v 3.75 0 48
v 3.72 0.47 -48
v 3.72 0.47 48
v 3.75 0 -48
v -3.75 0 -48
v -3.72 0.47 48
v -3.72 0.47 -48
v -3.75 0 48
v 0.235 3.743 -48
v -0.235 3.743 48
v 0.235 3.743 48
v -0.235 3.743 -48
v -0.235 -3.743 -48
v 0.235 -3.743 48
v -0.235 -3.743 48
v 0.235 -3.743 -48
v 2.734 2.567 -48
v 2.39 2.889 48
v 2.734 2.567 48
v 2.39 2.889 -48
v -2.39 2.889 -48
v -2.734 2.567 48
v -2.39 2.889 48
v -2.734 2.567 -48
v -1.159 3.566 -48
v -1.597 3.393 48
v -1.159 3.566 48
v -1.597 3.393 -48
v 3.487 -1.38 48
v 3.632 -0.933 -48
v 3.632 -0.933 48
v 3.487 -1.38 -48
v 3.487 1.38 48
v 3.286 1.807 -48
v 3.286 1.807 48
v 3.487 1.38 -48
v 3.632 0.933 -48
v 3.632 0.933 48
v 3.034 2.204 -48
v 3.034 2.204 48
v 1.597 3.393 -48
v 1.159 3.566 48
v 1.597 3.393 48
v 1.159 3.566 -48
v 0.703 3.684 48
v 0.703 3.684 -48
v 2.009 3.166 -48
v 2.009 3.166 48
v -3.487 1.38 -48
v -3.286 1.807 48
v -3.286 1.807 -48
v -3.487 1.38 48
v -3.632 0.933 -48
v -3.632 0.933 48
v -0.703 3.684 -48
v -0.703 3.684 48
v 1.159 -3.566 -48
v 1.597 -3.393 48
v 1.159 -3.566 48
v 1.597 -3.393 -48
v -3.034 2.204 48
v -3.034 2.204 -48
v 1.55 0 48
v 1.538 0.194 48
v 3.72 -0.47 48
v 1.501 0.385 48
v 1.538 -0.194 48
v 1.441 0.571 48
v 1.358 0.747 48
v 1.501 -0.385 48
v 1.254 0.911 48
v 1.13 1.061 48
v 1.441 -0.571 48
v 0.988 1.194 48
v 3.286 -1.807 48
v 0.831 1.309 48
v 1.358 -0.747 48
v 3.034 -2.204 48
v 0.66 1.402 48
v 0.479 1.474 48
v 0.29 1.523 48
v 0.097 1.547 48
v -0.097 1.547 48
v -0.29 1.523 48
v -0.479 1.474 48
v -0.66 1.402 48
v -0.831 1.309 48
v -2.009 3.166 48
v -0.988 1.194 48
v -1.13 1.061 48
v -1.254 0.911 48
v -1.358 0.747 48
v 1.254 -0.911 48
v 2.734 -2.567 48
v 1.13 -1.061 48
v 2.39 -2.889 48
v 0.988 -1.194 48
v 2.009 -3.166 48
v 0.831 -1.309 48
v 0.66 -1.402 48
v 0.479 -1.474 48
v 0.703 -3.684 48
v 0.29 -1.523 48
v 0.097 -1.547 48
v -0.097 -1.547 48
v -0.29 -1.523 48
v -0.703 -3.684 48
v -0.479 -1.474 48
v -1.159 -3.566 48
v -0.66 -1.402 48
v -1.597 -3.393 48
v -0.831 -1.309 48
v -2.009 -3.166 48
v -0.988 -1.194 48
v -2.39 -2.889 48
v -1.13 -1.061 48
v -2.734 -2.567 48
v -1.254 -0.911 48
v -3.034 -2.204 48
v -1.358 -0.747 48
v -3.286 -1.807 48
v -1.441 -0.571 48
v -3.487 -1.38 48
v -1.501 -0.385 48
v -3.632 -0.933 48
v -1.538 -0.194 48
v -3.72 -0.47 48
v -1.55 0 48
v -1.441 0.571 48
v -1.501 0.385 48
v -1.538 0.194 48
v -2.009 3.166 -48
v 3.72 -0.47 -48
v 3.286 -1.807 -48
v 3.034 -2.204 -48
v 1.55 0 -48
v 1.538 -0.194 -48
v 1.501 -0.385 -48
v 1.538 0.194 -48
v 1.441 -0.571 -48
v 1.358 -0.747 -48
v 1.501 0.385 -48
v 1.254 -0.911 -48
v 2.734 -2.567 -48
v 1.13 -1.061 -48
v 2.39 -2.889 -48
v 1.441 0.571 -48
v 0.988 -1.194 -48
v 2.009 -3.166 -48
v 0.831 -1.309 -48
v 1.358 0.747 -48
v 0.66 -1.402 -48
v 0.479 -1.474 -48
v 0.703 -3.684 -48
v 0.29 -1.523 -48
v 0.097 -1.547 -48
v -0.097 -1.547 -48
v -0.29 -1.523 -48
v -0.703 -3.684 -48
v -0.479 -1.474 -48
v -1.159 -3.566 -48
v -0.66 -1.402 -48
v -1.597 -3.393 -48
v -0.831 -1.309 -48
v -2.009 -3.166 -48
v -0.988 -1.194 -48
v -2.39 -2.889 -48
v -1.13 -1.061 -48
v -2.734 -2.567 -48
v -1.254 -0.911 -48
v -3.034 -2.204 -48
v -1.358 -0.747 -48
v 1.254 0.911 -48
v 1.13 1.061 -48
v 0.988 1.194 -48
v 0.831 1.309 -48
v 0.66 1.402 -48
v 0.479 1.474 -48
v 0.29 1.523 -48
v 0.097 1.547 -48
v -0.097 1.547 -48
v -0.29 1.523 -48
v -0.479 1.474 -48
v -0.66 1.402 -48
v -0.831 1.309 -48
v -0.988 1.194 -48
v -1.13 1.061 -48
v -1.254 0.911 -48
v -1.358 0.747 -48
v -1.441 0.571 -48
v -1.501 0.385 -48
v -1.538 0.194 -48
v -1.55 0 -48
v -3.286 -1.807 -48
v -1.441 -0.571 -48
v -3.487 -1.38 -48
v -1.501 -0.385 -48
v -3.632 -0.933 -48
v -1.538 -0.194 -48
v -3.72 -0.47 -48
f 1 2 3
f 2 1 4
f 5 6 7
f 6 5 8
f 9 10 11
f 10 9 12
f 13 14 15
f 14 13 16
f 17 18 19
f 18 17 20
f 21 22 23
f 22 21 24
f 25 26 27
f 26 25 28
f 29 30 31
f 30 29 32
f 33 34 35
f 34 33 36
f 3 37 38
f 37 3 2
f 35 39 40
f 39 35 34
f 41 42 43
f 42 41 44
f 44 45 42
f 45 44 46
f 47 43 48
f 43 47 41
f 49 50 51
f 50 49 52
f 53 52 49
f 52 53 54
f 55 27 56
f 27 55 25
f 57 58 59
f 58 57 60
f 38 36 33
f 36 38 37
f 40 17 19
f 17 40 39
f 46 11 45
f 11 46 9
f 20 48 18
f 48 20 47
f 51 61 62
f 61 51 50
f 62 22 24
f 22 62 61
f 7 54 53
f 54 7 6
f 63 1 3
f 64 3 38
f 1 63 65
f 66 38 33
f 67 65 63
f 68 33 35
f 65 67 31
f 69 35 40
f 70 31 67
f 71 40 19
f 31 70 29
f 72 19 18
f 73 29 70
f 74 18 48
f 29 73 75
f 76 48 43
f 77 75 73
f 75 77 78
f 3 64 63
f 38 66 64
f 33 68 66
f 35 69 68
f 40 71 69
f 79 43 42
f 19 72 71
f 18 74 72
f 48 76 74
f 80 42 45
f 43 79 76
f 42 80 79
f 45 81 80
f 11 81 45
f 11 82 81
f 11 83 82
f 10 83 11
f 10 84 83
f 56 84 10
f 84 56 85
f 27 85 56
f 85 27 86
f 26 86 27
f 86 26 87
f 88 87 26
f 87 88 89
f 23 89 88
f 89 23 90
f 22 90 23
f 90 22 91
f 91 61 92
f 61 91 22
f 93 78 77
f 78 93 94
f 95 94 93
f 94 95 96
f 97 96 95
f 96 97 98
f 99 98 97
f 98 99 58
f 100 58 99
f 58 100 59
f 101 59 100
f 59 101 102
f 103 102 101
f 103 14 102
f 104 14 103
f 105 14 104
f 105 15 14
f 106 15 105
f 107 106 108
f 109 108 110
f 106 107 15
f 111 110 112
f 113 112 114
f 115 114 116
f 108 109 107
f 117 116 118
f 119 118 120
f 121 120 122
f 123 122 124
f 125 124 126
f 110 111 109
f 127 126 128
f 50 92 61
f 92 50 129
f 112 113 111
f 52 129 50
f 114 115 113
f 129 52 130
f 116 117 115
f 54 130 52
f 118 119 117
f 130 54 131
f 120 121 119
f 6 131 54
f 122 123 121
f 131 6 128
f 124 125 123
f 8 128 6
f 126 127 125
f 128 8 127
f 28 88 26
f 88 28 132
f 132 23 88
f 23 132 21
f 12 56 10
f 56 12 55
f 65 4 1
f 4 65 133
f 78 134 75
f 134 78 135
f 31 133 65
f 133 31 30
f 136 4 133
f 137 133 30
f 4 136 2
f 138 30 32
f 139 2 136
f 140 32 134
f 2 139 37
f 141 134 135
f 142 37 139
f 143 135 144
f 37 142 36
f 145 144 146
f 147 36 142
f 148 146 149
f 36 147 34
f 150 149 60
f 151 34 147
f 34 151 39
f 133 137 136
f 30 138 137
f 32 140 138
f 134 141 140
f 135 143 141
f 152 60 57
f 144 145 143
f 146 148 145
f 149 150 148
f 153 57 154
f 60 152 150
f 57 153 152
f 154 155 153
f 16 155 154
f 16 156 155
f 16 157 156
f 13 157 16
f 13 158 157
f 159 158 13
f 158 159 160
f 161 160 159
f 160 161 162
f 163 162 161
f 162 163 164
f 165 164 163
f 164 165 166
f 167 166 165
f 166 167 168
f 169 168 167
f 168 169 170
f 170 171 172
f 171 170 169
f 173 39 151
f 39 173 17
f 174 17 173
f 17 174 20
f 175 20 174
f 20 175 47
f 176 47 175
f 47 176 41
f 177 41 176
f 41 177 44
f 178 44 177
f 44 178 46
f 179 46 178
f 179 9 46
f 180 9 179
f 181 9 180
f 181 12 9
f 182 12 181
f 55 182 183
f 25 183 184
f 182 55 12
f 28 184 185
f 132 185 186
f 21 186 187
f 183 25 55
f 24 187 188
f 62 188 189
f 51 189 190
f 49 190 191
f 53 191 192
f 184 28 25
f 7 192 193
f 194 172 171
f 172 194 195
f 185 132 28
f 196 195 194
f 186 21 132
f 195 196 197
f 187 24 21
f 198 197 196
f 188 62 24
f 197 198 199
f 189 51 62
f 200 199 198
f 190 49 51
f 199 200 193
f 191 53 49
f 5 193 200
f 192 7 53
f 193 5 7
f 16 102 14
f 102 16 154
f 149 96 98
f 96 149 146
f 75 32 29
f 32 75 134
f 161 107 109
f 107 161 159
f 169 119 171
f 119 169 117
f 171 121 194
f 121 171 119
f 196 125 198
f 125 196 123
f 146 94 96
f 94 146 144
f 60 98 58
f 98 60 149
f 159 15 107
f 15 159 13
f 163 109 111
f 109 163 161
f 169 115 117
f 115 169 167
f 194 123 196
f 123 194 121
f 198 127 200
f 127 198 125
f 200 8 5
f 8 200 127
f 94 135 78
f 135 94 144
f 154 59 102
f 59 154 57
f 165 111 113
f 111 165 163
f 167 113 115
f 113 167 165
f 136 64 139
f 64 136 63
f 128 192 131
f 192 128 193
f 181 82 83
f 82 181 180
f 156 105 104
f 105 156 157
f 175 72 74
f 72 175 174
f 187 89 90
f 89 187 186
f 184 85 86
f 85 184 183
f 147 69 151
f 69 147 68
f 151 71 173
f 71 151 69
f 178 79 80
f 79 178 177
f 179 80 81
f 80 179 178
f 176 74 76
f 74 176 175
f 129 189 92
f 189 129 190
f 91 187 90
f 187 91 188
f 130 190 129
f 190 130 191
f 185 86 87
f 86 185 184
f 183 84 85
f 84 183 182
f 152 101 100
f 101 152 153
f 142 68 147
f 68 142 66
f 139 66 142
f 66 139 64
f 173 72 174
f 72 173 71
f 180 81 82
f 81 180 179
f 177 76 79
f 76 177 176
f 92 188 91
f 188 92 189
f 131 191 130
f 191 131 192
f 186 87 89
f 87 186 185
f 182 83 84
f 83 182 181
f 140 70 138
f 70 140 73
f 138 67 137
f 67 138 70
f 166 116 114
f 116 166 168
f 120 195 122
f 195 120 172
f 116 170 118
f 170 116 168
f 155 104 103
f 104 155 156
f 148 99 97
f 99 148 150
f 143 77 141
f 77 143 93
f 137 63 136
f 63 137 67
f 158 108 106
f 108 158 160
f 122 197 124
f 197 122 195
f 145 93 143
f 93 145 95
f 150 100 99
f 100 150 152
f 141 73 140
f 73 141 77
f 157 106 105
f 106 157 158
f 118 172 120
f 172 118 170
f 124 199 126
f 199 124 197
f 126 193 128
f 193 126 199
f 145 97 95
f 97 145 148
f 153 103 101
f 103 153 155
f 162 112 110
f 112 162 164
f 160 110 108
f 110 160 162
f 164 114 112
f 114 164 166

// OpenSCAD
$fn = 50;


difference() {
	union() {
		translate(v = [0, 0, -48.0000000000]) {
			cylinder(h = 96, r = 3.7500000000);
		}
	}
	union() {
		translate(v = [0, 0, -100.0000000000]) {
			cylinder(h = 200, r = 1.5500000000);
		}
	}
}
